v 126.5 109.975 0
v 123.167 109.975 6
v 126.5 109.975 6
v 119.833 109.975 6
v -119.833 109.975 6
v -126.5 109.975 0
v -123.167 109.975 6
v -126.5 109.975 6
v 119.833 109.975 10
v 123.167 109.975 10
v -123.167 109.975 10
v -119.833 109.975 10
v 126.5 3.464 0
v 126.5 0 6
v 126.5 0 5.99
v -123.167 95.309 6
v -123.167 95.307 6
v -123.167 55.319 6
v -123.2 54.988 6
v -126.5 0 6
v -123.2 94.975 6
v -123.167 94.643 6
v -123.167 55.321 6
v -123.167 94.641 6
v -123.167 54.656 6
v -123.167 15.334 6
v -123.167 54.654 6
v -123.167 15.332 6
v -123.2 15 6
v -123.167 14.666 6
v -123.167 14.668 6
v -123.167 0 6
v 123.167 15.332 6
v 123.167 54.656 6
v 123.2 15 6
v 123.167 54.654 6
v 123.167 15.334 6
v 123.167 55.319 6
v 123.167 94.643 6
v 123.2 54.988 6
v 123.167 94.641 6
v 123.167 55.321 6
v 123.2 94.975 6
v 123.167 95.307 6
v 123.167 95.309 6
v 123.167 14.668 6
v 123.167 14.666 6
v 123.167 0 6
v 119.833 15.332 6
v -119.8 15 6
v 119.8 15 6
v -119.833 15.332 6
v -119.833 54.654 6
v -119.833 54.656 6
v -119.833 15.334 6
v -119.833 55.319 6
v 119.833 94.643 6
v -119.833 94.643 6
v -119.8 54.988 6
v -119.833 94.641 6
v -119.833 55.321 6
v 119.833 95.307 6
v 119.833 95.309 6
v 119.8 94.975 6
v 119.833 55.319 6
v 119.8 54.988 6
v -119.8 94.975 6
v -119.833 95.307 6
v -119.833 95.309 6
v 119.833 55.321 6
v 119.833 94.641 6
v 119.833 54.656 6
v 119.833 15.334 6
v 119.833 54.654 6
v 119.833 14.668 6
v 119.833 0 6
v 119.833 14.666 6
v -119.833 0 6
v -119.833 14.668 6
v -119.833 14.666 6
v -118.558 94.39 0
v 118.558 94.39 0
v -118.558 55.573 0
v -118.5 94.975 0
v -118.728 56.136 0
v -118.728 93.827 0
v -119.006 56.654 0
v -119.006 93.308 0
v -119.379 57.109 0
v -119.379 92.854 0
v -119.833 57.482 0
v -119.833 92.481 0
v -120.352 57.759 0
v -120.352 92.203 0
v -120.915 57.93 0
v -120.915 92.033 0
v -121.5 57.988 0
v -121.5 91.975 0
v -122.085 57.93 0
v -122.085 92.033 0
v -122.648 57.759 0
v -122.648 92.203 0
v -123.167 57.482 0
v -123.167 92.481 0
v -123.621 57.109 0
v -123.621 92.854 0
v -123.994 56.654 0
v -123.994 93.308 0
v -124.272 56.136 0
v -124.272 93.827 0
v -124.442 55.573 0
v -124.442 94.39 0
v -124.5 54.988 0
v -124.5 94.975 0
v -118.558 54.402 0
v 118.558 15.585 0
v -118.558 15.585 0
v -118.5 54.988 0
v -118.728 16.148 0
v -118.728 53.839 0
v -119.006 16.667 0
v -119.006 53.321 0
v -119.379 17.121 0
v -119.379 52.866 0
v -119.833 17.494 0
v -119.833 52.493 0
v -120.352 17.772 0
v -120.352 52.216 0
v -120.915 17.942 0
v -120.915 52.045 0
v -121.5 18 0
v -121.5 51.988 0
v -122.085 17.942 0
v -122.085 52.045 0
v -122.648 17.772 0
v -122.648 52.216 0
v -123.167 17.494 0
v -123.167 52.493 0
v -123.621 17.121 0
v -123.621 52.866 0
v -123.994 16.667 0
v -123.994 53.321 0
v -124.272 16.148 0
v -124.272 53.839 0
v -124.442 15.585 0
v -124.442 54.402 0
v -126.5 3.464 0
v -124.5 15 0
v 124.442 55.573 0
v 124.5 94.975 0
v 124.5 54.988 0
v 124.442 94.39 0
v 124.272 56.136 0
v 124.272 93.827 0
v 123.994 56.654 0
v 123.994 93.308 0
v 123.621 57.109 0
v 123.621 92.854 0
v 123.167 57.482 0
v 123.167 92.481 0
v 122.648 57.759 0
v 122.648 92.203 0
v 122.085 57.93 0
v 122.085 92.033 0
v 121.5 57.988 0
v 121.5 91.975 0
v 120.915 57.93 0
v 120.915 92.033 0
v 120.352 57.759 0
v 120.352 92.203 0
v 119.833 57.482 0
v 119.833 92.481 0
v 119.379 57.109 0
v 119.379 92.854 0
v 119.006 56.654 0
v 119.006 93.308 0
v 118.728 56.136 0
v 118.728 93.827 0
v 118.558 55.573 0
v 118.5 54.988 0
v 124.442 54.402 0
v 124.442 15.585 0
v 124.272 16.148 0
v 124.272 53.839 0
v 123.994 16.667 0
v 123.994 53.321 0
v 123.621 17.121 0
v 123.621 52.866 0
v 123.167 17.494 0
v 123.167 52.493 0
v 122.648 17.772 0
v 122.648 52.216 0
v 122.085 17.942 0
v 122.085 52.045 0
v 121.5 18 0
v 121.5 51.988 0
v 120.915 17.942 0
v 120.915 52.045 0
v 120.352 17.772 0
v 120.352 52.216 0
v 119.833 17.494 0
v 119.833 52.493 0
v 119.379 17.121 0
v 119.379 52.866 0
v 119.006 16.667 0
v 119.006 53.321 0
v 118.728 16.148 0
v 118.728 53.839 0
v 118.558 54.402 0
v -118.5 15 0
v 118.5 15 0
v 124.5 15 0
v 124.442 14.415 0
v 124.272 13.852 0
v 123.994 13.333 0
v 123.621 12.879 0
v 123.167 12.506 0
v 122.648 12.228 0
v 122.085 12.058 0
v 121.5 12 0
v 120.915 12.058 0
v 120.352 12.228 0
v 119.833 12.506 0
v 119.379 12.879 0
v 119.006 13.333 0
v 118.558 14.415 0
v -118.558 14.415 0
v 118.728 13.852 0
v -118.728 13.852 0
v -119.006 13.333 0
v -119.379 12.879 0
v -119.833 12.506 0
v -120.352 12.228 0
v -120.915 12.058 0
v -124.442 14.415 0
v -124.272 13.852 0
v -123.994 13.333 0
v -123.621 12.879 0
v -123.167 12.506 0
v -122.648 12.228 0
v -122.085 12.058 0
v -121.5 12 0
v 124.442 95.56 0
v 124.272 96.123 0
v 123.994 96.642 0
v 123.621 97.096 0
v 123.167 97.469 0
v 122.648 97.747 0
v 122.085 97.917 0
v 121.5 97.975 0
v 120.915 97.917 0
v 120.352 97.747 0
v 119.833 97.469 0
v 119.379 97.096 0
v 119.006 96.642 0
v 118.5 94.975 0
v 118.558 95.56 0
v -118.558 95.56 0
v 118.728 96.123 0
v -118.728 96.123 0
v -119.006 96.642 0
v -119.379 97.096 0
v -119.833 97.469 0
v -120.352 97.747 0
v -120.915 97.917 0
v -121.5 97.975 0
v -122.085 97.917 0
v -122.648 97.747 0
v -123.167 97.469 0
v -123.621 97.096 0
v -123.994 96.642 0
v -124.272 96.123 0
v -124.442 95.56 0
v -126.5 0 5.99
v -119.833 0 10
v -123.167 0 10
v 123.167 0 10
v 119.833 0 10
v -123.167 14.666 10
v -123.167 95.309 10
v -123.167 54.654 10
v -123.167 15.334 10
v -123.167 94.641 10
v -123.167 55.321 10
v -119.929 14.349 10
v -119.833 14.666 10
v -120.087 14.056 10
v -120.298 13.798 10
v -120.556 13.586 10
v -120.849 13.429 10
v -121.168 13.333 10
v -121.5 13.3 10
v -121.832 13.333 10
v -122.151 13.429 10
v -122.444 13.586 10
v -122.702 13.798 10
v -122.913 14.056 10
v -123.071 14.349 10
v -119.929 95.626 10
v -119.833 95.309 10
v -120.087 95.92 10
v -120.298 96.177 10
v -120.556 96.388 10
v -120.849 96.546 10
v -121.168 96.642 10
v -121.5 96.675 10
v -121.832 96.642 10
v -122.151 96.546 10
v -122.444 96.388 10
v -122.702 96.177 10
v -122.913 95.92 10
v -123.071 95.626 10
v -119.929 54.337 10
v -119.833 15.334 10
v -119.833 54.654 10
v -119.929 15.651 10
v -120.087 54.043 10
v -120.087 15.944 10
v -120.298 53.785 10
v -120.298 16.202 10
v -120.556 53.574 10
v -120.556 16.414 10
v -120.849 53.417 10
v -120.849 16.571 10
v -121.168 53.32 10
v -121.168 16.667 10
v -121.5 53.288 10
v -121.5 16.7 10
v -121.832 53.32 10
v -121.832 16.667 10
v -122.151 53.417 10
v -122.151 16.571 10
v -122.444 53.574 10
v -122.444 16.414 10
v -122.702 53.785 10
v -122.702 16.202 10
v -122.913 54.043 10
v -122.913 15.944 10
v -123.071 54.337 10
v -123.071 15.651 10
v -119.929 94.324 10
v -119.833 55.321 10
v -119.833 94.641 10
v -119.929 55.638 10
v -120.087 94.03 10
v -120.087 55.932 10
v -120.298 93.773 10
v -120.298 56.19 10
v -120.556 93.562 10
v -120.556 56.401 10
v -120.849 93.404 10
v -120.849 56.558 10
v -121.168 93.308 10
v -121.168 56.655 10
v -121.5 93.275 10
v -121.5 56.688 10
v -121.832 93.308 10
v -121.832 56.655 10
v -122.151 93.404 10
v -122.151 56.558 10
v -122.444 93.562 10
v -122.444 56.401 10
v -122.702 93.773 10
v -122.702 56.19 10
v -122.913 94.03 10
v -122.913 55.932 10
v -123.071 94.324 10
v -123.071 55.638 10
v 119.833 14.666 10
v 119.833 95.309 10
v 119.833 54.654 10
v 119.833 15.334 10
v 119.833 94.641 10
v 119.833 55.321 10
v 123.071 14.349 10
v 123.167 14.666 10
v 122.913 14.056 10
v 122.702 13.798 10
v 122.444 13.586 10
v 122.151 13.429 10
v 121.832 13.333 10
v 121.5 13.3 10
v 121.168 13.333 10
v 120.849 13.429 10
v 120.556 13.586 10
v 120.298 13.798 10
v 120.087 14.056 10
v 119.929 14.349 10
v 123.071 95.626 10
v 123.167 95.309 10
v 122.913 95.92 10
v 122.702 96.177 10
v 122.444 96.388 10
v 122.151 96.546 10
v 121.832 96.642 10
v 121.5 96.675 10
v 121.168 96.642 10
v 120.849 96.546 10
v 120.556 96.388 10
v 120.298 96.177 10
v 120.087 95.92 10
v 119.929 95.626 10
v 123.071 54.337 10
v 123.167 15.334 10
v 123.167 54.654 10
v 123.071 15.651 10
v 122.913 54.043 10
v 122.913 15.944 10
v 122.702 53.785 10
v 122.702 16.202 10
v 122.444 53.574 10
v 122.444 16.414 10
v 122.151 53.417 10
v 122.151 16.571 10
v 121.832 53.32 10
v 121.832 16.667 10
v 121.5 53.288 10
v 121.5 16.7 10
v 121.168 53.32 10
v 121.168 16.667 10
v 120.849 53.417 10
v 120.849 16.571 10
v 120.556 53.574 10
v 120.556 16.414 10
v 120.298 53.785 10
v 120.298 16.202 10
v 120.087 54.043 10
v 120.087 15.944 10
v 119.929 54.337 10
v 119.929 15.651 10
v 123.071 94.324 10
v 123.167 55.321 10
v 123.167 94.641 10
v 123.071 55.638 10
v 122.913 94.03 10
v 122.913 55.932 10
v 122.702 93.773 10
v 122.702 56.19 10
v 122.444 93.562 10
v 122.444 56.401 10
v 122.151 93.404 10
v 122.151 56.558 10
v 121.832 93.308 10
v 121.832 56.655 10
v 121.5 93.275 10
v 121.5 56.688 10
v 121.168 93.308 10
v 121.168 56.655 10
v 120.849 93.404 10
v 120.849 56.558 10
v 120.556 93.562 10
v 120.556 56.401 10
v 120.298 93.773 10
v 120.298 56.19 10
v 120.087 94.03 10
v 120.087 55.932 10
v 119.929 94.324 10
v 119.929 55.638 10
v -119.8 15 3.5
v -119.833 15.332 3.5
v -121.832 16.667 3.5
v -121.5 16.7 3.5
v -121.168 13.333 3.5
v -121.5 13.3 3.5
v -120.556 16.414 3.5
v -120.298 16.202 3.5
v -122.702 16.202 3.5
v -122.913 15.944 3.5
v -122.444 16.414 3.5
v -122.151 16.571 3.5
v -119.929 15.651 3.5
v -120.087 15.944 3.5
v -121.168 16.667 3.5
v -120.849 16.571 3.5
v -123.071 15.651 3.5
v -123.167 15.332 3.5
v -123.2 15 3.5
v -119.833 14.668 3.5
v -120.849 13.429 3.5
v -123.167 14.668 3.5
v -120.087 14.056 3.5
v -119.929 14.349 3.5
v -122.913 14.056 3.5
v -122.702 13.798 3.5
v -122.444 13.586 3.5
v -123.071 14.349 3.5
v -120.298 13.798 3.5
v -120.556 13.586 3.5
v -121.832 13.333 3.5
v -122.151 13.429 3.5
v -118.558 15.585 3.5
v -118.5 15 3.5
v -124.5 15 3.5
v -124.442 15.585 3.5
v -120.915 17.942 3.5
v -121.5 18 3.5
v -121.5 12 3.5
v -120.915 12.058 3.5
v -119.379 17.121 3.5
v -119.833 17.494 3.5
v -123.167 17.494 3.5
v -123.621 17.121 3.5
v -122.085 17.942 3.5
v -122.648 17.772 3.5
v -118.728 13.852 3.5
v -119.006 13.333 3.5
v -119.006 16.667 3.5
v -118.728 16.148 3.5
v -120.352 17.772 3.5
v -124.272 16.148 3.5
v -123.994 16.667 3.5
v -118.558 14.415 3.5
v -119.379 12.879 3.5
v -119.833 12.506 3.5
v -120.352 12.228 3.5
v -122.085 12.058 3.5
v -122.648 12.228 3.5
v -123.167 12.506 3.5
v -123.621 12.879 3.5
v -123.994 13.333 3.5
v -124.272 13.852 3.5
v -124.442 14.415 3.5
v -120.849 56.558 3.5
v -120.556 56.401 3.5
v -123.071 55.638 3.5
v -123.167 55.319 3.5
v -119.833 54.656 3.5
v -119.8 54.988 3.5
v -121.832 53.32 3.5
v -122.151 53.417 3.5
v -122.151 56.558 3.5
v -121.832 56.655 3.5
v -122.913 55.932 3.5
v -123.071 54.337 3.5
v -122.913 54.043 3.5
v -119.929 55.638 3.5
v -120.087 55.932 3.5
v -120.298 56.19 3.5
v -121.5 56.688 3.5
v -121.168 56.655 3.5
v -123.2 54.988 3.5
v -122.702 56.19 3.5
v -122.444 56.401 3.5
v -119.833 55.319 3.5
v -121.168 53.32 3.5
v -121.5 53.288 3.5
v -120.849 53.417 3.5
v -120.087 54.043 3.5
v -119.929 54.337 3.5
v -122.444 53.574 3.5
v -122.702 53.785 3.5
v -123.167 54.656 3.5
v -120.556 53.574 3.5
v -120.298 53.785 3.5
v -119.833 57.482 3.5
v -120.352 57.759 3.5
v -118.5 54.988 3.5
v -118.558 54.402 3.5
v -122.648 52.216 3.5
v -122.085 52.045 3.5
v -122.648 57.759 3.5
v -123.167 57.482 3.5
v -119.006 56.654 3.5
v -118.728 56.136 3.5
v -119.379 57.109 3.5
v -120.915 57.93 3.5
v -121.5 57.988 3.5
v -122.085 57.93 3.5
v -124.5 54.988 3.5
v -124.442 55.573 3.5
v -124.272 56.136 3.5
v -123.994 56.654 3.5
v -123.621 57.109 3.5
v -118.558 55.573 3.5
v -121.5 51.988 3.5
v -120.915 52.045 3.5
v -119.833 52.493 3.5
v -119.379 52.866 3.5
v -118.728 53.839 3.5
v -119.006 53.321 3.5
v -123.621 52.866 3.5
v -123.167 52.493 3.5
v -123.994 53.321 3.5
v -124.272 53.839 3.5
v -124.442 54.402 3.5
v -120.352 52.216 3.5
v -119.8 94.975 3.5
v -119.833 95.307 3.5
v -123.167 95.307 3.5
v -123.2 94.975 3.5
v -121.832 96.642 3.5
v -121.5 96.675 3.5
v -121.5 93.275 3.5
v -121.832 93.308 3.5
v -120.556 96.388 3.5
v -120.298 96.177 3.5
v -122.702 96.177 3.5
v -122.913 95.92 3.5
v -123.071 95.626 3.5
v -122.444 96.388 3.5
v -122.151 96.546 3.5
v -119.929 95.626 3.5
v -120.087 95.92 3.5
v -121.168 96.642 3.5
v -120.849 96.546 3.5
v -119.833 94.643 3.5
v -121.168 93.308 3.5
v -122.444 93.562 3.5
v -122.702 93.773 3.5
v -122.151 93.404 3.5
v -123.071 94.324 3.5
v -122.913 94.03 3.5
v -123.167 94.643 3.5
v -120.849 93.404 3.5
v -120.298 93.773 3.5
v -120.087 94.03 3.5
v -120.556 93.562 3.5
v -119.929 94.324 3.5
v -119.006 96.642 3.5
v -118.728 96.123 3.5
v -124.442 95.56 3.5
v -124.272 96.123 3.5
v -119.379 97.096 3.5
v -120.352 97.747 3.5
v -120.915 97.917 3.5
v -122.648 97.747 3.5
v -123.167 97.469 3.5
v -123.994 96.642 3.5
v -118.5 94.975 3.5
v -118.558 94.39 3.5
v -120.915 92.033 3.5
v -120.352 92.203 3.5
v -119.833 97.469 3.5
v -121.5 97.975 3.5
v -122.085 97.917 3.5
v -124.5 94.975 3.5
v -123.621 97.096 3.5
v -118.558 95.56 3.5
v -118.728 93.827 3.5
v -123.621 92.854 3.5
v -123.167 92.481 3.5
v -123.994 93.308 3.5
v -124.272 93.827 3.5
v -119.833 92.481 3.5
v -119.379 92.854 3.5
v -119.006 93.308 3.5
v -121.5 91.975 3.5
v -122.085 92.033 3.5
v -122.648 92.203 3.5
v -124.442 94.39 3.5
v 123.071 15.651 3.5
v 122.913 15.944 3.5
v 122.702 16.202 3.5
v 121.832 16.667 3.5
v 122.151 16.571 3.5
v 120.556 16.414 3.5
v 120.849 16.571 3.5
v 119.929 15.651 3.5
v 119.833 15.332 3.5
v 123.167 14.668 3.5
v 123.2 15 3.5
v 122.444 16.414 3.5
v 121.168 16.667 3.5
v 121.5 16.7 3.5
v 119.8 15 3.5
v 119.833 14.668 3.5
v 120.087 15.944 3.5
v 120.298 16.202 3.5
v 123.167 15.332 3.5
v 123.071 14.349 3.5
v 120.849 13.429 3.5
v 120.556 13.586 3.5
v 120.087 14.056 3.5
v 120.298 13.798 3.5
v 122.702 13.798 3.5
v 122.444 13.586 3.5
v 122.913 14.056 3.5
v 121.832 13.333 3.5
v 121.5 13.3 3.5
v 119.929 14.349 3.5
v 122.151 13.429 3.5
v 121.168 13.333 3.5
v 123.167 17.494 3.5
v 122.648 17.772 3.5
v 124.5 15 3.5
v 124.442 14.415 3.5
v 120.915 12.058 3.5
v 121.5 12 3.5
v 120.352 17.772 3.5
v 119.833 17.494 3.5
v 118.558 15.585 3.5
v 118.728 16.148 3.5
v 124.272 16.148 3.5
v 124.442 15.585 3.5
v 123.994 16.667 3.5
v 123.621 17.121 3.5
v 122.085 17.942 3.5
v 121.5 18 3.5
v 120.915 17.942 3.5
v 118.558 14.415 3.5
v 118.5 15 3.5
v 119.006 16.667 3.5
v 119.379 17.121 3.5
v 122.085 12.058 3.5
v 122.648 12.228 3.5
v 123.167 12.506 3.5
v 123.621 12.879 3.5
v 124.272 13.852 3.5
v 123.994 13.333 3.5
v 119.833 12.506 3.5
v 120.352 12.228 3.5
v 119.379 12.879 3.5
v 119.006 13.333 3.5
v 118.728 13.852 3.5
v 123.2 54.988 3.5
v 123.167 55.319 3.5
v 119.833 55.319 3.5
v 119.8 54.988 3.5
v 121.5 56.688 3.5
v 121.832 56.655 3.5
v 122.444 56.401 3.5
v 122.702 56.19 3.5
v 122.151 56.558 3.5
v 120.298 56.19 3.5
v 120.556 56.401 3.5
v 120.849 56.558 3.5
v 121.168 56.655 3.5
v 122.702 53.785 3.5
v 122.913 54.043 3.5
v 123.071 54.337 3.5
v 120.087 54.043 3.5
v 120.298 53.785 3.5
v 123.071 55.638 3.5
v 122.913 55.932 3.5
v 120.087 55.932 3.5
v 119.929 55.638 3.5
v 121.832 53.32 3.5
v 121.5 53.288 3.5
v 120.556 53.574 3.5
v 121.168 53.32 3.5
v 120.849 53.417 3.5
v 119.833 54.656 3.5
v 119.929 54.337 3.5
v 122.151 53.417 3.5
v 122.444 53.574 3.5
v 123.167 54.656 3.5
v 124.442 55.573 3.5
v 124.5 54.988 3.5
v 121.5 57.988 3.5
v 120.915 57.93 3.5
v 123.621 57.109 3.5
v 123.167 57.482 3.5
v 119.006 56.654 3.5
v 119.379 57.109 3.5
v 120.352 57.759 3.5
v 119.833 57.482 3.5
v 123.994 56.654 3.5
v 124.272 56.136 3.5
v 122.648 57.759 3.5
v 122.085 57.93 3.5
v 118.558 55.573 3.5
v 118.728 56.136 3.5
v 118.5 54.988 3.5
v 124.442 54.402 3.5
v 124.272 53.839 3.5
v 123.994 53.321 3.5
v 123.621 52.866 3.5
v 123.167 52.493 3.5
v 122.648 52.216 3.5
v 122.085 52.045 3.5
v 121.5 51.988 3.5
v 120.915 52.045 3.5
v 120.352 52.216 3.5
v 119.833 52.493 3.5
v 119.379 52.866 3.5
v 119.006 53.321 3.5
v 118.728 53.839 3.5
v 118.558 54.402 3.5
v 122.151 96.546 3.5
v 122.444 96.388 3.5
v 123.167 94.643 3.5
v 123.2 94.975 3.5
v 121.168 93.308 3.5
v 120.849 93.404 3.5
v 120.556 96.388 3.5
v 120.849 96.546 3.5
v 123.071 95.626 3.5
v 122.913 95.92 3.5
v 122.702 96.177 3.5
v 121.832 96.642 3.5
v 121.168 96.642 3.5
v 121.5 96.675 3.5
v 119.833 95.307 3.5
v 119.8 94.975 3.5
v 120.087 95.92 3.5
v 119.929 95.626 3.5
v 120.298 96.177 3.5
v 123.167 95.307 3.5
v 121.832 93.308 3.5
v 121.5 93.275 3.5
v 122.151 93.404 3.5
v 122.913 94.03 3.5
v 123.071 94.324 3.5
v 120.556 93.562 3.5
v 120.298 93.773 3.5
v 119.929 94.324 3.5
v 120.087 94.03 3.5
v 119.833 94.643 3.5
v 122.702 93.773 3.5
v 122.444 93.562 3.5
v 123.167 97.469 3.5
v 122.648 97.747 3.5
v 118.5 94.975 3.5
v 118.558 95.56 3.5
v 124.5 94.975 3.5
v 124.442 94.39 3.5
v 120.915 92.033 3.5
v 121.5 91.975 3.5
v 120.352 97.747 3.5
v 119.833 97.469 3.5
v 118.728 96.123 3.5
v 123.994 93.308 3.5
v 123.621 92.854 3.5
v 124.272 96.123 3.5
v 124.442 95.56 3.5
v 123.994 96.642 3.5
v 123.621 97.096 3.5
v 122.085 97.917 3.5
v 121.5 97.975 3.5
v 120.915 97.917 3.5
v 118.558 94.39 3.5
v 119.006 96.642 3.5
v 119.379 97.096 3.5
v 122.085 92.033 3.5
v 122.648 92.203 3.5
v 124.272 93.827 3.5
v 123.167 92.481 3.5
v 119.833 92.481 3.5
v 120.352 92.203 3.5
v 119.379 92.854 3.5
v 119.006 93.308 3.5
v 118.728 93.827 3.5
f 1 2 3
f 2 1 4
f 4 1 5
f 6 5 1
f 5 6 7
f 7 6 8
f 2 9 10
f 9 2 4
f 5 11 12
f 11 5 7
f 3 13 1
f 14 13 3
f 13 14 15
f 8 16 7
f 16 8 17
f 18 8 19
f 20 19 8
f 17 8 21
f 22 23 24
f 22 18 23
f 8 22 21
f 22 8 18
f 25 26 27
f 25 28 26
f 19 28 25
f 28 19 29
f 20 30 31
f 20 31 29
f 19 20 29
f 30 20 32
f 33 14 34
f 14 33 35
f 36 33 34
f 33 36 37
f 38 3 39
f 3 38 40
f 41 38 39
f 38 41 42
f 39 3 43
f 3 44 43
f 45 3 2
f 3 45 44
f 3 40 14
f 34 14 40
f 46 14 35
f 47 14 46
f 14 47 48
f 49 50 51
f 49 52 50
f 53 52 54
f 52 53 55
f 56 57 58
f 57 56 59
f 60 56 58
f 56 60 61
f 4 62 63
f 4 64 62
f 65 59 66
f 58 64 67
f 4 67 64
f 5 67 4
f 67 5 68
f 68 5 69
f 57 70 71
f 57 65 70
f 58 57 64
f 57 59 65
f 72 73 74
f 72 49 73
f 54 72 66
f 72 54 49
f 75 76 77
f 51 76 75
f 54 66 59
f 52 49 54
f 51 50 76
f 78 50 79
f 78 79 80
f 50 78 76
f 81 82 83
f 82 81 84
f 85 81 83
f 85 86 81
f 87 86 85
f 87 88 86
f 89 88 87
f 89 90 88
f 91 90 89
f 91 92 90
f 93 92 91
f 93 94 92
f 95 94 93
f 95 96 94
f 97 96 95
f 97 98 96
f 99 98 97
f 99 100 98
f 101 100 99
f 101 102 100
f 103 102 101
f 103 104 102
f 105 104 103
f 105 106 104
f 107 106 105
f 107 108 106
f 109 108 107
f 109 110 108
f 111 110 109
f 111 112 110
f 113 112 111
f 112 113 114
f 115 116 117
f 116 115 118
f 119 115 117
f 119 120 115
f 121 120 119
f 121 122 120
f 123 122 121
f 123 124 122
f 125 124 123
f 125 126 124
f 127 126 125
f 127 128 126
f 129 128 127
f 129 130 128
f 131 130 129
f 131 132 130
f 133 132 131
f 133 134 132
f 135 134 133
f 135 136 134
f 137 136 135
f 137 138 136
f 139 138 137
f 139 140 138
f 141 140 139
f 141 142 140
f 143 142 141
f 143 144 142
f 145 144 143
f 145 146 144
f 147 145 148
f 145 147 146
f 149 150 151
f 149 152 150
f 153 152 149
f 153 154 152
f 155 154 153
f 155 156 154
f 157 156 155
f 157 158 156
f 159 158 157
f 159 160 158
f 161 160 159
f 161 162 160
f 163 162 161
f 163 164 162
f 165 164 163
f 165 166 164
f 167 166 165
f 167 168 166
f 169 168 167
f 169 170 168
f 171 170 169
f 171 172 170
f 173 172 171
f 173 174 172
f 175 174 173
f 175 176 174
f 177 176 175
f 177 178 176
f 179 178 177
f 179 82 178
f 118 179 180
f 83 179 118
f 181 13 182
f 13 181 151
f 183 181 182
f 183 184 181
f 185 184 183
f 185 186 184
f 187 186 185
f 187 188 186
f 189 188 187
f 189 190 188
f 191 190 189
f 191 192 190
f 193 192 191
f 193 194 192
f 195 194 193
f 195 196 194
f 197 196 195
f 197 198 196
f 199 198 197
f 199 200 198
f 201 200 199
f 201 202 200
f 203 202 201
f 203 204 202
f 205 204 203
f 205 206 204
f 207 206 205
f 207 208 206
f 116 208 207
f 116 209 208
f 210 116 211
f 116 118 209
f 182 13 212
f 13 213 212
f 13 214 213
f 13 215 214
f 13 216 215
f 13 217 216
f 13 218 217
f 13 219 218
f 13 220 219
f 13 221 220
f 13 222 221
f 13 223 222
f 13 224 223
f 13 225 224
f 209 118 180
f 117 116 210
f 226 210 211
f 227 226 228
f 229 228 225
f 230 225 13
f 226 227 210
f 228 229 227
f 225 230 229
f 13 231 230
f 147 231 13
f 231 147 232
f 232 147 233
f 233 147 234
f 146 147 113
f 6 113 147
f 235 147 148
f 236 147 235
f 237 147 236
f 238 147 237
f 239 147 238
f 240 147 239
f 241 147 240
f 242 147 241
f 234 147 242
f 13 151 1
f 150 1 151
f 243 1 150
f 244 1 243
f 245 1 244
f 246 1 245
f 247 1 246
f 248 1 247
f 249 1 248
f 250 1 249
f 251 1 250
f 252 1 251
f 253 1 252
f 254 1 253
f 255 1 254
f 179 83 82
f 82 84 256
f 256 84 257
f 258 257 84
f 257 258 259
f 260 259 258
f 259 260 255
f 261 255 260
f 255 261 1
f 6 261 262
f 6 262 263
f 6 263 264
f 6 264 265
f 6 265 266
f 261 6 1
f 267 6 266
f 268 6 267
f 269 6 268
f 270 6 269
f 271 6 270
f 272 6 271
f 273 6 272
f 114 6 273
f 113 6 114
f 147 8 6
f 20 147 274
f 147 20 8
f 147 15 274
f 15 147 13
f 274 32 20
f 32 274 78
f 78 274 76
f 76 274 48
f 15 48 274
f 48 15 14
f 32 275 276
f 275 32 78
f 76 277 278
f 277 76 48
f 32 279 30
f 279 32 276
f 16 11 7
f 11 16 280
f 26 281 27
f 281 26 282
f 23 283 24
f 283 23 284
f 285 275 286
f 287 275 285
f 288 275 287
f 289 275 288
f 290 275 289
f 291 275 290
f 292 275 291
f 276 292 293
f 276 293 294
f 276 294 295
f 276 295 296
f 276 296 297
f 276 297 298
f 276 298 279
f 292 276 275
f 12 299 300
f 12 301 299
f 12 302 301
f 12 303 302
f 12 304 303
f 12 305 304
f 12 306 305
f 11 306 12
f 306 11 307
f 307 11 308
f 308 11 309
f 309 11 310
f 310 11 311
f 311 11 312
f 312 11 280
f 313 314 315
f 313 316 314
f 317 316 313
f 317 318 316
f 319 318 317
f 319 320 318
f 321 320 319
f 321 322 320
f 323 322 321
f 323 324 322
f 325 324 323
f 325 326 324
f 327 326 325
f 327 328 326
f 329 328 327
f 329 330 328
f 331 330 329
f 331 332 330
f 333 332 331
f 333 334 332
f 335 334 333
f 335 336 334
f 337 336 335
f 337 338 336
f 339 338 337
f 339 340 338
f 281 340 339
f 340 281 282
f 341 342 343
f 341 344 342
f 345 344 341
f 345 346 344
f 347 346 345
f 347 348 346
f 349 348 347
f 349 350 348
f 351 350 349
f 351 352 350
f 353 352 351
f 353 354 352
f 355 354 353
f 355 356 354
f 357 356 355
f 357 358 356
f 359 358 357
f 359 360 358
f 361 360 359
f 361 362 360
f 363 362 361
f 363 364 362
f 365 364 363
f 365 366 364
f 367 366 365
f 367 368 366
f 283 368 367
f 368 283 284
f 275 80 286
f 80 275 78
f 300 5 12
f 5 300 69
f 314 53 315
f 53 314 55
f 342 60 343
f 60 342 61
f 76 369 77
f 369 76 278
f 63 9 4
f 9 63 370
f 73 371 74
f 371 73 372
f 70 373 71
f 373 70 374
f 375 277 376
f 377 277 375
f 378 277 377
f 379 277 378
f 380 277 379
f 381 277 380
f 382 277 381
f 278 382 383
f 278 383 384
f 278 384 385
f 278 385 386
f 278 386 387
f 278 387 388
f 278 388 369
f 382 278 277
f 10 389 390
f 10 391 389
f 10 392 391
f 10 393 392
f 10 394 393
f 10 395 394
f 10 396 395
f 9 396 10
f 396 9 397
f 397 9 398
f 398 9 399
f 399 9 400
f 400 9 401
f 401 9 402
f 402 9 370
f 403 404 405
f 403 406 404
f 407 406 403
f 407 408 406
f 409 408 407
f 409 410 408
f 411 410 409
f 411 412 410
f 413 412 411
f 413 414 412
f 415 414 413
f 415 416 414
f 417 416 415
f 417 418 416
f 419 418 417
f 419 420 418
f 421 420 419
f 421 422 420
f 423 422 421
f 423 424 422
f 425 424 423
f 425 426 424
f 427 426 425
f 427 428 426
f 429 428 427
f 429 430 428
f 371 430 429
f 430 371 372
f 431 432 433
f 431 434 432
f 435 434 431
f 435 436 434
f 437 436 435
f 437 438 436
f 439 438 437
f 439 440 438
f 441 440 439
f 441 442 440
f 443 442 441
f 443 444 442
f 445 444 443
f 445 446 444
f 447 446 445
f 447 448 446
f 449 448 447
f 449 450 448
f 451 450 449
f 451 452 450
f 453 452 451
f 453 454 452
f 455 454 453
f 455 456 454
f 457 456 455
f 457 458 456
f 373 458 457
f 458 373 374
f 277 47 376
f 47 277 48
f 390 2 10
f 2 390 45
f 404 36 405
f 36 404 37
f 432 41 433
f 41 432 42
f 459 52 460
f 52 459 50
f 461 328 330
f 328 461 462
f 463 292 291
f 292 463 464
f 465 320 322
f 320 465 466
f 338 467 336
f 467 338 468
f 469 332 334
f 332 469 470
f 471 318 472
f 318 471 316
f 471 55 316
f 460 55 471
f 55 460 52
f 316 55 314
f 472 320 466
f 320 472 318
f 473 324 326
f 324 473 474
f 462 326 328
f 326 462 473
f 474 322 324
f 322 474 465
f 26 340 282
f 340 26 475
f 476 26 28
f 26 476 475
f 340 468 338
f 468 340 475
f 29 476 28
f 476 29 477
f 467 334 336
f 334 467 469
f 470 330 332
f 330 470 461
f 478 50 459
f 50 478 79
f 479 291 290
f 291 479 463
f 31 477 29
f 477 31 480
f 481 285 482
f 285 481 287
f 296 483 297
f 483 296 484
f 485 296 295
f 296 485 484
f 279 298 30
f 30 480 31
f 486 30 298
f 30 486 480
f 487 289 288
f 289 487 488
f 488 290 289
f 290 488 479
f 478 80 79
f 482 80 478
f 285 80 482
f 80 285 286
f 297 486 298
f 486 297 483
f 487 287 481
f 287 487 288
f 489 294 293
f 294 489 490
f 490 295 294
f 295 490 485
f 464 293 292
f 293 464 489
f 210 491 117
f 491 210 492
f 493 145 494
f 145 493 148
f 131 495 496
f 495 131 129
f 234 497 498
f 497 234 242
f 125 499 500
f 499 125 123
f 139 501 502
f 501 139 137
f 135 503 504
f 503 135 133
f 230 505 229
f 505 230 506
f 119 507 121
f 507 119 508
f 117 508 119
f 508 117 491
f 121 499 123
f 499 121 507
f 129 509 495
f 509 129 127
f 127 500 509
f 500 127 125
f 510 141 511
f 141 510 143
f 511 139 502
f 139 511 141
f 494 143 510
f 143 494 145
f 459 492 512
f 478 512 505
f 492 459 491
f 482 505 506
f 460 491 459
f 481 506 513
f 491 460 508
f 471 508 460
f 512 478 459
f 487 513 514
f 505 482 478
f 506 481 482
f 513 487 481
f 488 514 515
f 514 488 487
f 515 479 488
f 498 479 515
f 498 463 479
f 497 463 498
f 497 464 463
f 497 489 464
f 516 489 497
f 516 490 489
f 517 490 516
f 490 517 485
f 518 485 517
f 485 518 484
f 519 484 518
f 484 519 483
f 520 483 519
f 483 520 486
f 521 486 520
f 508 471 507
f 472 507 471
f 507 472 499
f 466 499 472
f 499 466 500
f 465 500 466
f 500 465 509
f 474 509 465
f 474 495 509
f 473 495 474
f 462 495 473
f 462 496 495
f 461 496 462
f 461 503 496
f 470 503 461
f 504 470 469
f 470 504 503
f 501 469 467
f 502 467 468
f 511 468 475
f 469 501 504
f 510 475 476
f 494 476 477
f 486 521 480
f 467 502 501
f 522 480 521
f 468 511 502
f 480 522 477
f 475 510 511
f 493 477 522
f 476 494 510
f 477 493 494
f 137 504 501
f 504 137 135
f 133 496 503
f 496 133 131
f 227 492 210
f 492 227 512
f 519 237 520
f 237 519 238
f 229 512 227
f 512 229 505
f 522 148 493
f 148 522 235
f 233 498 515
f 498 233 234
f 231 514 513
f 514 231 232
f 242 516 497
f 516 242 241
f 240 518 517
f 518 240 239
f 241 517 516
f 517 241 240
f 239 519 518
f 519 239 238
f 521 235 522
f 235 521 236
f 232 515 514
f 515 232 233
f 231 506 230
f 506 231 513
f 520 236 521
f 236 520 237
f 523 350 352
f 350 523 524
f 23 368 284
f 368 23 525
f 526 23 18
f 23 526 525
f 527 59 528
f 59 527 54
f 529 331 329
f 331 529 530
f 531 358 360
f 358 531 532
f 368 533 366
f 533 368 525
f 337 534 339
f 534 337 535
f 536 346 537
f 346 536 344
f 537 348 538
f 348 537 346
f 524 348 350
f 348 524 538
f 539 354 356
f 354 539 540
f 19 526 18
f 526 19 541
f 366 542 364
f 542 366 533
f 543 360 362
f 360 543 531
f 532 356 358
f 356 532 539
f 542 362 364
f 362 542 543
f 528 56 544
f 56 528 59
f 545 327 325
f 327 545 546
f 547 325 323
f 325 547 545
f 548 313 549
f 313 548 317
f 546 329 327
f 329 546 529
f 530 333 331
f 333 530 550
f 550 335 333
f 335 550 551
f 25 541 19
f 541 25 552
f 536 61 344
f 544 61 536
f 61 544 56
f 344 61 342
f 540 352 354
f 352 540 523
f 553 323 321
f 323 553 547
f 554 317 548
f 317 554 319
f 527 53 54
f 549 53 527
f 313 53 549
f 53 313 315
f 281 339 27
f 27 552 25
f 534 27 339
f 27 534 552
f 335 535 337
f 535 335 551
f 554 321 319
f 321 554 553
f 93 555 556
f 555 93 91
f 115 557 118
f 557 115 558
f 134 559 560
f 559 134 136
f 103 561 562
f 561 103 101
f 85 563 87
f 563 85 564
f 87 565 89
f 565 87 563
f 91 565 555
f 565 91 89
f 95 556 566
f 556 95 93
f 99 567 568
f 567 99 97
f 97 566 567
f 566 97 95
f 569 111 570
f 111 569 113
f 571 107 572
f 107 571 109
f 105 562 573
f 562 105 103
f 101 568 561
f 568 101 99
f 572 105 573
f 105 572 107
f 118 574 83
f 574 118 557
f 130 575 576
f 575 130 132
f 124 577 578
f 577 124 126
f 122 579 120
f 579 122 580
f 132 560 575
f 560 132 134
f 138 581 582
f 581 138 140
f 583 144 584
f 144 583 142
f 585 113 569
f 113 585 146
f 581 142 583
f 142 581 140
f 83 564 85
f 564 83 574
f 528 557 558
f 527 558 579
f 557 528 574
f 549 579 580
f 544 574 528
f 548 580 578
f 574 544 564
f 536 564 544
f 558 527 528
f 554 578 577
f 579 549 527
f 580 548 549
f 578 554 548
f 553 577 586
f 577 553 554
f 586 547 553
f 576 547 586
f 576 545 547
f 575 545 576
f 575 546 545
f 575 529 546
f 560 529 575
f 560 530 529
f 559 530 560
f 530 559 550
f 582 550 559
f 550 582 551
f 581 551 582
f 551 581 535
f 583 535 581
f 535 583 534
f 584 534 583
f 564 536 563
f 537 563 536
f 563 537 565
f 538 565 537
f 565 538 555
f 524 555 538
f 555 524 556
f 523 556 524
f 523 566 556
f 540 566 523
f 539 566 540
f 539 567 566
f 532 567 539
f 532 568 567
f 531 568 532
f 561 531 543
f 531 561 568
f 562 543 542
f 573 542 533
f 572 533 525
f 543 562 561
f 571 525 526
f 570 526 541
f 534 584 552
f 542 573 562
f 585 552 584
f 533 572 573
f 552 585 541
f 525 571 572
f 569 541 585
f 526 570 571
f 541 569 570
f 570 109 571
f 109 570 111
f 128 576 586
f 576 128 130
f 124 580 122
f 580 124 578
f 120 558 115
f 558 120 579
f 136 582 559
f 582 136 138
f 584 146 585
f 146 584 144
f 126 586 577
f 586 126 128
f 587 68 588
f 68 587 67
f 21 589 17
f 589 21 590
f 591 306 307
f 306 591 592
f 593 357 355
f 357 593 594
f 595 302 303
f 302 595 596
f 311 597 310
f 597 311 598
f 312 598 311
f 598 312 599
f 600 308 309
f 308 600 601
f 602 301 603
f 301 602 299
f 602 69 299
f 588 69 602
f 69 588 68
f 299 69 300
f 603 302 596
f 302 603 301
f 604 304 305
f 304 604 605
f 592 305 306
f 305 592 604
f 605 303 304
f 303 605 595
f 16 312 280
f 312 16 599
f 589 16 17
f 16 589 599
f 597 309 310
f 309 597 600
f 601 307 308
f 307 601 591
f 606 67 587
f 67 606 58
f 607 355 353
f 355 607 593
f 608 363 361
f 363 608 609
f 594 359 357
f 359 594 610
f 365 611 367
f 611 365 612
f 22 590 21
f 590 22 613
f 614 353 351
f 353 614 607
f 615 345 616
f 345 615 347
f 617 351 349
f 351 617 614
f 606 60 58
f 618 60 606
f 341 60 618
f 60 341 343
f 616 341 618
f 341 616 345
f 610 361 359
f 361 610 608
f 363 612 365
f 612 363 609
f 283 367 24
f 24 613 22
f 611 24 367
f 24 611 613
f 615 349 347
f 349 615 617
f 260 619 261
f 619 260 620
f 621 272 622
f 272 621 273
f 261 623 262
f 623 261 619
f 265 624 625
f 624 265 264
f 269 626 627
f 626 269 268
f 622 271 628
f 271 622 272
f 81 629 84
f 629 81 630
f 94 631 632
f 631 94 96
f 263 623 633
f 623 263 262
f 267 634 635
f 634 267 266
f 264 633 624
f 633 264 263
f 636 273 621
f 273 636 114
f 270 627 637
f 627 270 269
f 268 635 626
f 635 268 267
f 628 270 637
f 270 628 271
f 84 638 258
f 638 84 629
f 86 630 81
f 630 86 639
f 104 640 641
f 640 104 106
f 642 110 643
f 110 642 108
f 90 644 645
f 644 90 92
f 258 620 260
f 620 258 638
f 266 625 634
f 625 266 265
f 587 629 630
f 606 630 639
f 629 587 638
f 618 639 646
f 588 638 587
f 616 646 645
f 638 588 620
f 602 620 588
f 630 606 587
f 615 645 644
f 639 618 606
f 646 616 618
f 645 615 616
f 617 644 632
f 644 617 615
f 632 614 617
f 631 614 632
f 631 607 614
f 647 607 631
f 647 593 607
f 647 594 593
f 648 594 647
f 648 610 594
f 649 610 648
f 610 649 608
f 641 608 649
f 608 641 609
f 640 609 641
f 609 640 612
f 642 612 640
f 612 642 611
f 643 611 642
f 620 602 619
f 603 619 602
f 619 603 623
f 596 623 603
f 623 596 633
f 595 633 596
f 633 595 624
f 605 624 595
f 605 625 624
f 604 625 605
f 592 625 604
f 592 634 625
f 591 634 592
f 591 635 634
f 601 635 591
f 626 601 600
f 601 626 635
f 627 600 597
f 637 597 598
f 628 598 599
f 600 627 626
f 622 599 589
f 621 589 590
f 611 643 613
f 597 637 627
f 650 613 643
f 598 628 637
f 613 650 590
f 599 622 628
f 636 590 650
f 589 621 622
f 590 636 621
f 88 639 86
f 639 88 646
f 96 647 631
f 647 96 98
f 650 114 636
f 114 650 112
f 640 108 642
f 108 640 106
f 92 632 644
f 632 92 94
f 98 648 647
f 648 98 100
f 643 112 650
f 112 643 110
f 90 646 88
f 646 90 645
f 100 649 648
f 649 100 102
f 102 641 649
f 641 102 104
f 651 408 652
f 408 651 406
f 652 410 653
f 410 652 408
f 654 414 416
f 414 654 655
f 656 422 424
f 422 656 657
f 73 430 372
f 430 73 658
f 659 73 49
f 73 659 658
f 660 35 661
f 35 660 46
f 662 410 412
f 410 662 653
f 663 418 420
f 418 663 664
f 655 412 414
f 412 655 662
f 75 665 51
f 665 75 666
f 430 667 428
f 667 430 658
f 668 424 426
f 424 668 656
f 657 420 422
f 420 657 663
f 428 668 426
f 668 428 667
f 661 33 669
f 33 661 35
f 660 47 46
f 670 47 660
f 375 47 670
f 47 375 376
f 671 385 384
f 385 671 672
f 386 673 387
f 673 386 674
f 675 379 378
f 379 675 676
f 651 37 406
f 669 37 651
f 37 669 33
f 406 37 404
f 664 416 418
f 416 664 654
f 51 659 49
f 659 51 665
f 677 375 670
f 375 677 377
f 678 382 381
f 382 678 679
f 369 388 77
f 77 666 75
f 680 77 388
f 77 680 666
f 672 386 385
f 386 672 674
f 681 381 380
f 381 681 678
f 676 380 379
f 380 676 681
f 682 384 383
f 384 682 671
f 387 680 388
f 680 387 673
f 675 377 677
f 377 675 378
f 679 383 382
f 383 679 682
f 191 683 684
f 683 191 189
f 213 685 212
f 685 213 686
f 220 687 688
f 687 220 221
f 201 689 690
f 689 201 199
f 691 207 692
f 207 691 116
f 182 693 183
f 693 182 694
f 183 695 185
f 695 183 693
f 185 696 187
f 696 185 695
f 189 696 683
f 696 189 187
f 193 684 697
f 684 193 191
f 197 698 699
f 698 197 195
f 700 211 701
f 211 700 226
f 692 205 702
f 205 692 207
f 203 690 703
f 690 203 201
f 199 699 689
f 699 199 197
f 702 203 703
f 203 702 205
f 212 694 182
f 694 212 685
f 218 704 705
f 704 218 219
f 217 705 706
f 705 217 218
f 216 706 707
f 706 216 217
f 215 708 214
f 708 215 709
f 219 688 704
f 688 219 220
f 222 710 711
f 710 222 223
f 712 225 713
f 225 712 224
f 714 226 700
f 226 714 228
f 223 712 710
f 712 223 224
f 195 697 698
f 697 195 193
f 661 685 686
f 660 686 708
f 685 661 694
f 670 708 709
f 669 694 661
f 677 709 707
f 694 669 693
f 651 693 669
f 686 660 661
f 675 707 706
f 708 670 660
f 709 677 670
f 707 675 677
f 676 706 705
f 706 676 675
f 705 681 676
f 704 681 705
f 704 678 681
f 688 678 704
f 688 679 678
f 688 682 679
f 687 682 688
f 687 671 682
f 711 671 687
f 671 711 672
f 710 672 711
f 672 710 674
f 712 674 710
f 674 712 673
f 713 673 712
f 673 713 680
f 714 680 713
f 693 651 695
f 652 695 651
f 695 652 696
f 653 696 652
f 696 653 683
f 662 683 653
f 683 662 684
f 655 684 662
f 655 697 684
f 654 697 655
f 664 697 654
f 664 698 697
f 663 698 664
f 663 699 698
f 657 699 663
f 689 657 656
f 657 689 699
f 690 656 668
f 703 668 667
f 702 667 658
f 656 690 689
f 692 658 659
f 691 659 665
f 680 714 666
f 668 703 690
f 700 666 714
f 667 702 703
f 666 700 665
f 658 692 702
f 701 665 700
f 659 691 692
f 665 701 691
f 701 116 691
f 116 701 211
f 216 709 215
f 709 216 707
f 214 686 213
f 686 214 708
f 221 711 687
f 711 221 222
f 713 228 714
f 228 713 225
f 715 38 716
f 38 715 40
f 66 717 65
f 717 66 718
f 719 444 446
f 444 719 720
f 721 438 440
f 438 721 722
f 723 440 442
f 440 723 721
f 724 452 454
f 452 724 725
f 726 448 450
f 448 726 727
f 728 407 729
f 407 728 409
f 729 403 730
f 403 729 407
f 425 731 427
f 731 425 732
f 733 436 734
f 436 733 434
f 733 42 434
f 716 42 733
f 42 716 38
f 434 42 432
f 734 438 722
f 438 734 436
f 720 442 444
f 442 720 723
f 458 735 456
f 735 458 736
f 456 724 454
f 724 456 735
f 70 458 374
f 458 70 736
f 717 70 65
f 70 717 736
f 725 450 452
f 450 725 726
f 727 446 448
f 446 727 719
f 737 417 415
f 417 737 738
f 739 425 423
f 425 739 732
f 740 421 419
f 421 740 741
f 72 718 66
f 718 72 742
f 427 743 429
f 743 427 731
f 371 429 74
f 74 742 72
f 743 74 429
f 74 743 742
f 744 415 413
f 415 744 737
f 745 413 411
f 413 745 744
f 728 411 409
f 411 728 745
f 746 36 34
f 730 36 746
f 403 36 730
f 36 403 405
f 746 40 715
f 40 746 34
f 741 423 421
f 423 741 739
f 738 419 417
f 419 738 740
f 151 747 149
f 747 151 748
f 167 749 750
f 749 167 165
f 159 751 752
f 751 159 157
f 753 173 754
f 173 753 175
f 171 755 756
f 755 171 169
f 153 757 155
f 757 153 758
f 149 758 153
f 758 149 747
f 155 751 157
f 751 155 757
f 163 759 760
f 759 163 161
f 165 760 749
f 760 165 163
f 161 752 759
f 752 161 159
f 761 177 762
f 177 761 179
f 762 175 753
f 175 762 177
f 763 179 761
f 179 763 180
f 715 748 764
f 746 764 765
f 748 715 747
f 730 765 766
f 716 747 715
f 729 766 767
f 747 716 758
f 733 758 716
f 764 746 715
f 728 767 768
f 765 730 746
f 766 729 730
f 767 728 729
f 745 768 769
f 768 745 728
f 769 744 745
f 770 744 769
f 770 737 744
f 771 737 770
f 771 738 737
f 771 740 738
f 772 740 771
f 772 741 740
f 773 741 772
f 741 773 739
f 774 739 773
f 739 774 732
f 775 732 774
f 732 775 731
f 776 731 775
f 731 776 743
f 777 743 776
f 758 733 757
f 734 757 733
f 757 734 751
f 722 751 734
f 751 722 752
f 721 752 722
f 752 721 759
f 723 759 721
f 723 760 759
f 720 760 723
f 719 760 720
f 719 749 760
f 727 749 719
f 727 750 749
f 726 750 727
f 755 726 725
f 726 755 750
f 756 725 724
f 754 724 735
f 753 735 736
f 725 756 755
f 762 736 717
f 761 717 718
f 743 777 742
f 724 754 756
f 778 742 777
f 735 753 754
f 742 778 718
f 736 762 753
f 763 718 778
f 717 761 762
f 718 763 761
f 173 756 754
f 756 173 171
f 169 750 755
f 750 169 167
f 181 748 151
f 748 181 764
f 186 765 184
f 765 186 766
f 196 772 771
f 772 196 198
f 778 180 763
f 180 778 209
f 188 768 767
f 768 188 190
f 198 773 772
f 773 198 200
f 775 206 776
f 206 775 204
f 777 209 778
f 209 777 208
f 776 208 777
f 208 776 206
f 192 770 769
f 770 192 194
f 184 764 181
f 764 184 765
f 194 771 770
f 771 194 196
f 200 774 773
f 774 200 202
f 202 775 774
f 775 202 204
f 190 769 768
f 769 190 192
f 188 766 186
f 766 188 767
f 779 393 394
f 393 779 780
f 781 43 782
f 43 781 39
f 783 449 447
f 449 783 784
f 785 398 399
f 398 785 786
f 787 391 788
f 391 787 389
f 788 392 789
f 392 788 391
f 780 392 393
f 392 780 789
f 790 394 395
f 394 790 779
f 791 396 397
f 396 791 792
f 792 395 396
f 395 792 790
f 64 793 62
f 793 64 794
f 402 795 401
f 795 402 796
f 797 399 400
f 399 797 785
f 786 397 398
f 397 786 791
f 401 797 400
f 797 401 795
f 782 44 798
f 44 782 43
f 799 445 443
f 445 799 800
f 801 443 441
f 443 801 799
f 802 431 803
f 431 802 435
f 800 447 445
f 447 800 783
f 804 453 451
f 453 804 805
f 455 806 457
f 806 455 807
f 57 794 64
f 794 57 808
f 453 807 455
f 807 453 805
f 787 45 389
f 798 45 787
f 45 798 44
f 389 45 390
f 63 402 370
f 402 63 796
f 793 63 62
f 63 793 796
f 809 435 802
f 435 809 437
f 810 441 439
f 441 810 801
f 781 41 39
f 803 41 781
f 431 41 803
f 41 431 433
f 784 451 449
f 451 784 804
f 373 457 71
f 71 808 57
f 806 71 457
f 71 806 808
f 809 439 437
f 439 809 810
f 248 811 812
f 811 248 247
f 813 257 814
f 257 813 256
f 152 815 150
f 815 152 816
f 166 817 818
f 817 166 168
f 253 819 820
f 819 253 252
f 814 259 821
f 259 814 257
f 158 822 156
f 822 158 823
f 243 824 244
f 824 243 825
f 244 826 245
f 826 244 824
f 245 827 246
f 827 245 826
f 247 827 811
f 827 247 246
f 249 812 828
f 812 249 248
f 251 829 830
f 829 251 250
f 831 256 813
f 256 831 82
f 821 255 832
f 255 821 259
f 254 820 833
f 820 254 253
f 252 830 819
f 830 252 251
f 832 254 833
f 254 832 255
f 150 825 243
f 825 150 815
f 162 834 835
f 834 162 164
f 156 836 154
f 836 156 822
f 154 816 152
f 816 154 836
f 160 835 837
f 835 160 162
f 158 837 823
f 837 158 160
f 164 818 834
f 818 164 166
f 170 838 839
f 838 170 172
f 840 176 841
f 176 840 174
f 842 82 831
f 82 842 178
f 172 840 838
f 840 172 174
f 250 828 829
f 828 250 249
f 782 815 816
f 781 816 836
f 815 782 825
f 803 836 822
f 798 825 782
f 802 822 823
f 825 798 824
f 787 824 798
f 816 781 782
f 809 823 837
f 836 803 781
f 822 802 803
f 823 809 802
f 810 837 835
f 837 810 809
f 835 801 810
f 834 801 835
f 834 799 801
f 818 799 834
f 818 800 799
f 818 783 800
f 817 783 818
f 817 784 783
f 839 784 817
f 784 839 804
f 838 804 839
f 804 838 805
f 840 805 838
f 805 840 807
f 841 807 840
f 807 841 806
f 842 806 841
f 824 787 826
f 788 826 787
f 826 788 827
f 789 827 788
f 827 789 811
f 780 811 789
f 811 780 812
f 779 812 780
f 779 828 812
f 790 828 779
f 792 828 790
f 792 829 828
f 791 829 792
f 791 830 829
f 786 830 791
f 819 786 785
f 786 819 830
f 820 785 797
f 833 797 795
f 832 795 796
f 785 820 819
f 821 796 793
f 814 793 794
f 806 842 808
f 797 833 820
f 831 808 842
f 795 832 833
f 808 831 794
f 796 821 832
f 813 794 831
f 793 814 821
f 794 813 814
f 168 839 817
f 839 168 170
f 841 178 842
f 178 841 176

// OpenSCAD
// =============================================================================
// CONSOLE10 — Top Panel  v3.3  (parametric)
//
// Single-piece slab + two side ridges (same joinery as the bottom). Flipped in
// the module so ridges point DOWN into the cheek top rabbets.
//   - front edge beveled to the slant angle (hull-built)
//   - v3.3: 3 counterbored (flush socket-cap) M3 mounting holes per side,
//     centered over each cheek, screwing down into heat-set inserts in the
//     cheek top edge.
// NOTE: standalone the bevel/countersinks read "upside down" (slab top face is
// world-bottom pre-flip) — judge it in Console10_module.scad.
// =============================================================================

panel_width   = 253;       // X, = 10" mini-rack width
panel_depth   = 109.975;   // Y, = cheek top-edge length
slab_thick    = 6;         // Z, slab thickness
ridge_width   = 10/3;      // tongue width  (equal thirds: tongue = both walls = 10/3)
ridge_height  = 4;         // Z height of ridge above the slab
ridge_inset   = 10/3;      // outer wall = tongue = inner wall = 10/3 (centered, all equal)
ridge_setback = 0;         // Y gap from the panel end to the start of the ridge

front_bevel   = true;      // bevel the front edge to match the slant
slant_angle   = 30;        // deg from vertical
bevel         = front_bevel ? slab_thick * tan(slant_angle) : 0;   // 3.46 mm

// M3 mounting screws (socket-cap, COUNTERBORED flush; down through the top into
// heat-set inserts in the cheek tops)
cheek_thick   = 10;        // matches the cheek (for screw centering)
n_screws      = 3;         // per side
screw_margin  = 15;        // from each end of the top edge
m3_clear      = 3.4;       // clearance hole dia
m3_cbore_dia  = 6.0;       // counterbore (socket-cap head) pocket dia
m3_cbore_deep = 3.5;       // counterbore depth (head height + clearance)
cheek_ctr_x   = panel_width/2 - cheek_thick/2;   // 121.5 (cheek centerline)

ridge_len = panel_depth - ridge_setback;
eps = 0.01;

// screw Y positions evenly spaced along the top edge (shared with the cheek)
function screw_ys() = [ for (i = [0:n_screws-1])
    screw_margin + i*(panel_depth - 2*screw_margin)/(n_screws-1) ];

echo(str("top v3.3  bevel ", bevel, " mm   screws/side ", n_screws,
         " at Y ", screw_ys(), "  X +/-", cheek_ctr_x));

module top_panel() {
    difference() {
        union() {
            // beveled slab: hull between bottom face (front set back) and top face (flush)
            hull() {
                translate([-panel_width/2, bevel, 0])
                    cube([panel_width, panel_depth - bevel, eps]);
                translate([-panel_width/2, 0, slab_thick - eps])
                    cube([panel_width, panel_depth, eps]);
            }
            // side ridges (on the +Z face)
            translate([-panel_width/2 + ridge_inset, ridge_setback, slab_thick])
                cube([ridge_width, ridge_len, ridge_height]);
            translate([panel_width/2 - ridge_inset - ridge_width, ridge_setback, slab_thick])
                cube([ridge_width, ridge_len, ridge_height]);
        }
        // M3 holes — clearance through slab+ridge + a counterbore pocket on the
        // Z=0 face (becomes the world-top surface after the module's mirror), so
        // the socket-cap head sits flush/recessed.
        for (sx = [-cheek_ctr_x, cheek_ctr_x])
            for (sy = screw_ys()) {
                translate([sx, sy, -0.1])
                    cylinder(d = m3_clear, h = slab_thick + ridge_height + 0.2, $fn = 32);
                translate([sx, sy, -0.1])
                    cylinder(d = m3_cbore_dia, h = m3_cbore_deep + 0.1, $fn = 32);
            }
    }
}

top_panel();
